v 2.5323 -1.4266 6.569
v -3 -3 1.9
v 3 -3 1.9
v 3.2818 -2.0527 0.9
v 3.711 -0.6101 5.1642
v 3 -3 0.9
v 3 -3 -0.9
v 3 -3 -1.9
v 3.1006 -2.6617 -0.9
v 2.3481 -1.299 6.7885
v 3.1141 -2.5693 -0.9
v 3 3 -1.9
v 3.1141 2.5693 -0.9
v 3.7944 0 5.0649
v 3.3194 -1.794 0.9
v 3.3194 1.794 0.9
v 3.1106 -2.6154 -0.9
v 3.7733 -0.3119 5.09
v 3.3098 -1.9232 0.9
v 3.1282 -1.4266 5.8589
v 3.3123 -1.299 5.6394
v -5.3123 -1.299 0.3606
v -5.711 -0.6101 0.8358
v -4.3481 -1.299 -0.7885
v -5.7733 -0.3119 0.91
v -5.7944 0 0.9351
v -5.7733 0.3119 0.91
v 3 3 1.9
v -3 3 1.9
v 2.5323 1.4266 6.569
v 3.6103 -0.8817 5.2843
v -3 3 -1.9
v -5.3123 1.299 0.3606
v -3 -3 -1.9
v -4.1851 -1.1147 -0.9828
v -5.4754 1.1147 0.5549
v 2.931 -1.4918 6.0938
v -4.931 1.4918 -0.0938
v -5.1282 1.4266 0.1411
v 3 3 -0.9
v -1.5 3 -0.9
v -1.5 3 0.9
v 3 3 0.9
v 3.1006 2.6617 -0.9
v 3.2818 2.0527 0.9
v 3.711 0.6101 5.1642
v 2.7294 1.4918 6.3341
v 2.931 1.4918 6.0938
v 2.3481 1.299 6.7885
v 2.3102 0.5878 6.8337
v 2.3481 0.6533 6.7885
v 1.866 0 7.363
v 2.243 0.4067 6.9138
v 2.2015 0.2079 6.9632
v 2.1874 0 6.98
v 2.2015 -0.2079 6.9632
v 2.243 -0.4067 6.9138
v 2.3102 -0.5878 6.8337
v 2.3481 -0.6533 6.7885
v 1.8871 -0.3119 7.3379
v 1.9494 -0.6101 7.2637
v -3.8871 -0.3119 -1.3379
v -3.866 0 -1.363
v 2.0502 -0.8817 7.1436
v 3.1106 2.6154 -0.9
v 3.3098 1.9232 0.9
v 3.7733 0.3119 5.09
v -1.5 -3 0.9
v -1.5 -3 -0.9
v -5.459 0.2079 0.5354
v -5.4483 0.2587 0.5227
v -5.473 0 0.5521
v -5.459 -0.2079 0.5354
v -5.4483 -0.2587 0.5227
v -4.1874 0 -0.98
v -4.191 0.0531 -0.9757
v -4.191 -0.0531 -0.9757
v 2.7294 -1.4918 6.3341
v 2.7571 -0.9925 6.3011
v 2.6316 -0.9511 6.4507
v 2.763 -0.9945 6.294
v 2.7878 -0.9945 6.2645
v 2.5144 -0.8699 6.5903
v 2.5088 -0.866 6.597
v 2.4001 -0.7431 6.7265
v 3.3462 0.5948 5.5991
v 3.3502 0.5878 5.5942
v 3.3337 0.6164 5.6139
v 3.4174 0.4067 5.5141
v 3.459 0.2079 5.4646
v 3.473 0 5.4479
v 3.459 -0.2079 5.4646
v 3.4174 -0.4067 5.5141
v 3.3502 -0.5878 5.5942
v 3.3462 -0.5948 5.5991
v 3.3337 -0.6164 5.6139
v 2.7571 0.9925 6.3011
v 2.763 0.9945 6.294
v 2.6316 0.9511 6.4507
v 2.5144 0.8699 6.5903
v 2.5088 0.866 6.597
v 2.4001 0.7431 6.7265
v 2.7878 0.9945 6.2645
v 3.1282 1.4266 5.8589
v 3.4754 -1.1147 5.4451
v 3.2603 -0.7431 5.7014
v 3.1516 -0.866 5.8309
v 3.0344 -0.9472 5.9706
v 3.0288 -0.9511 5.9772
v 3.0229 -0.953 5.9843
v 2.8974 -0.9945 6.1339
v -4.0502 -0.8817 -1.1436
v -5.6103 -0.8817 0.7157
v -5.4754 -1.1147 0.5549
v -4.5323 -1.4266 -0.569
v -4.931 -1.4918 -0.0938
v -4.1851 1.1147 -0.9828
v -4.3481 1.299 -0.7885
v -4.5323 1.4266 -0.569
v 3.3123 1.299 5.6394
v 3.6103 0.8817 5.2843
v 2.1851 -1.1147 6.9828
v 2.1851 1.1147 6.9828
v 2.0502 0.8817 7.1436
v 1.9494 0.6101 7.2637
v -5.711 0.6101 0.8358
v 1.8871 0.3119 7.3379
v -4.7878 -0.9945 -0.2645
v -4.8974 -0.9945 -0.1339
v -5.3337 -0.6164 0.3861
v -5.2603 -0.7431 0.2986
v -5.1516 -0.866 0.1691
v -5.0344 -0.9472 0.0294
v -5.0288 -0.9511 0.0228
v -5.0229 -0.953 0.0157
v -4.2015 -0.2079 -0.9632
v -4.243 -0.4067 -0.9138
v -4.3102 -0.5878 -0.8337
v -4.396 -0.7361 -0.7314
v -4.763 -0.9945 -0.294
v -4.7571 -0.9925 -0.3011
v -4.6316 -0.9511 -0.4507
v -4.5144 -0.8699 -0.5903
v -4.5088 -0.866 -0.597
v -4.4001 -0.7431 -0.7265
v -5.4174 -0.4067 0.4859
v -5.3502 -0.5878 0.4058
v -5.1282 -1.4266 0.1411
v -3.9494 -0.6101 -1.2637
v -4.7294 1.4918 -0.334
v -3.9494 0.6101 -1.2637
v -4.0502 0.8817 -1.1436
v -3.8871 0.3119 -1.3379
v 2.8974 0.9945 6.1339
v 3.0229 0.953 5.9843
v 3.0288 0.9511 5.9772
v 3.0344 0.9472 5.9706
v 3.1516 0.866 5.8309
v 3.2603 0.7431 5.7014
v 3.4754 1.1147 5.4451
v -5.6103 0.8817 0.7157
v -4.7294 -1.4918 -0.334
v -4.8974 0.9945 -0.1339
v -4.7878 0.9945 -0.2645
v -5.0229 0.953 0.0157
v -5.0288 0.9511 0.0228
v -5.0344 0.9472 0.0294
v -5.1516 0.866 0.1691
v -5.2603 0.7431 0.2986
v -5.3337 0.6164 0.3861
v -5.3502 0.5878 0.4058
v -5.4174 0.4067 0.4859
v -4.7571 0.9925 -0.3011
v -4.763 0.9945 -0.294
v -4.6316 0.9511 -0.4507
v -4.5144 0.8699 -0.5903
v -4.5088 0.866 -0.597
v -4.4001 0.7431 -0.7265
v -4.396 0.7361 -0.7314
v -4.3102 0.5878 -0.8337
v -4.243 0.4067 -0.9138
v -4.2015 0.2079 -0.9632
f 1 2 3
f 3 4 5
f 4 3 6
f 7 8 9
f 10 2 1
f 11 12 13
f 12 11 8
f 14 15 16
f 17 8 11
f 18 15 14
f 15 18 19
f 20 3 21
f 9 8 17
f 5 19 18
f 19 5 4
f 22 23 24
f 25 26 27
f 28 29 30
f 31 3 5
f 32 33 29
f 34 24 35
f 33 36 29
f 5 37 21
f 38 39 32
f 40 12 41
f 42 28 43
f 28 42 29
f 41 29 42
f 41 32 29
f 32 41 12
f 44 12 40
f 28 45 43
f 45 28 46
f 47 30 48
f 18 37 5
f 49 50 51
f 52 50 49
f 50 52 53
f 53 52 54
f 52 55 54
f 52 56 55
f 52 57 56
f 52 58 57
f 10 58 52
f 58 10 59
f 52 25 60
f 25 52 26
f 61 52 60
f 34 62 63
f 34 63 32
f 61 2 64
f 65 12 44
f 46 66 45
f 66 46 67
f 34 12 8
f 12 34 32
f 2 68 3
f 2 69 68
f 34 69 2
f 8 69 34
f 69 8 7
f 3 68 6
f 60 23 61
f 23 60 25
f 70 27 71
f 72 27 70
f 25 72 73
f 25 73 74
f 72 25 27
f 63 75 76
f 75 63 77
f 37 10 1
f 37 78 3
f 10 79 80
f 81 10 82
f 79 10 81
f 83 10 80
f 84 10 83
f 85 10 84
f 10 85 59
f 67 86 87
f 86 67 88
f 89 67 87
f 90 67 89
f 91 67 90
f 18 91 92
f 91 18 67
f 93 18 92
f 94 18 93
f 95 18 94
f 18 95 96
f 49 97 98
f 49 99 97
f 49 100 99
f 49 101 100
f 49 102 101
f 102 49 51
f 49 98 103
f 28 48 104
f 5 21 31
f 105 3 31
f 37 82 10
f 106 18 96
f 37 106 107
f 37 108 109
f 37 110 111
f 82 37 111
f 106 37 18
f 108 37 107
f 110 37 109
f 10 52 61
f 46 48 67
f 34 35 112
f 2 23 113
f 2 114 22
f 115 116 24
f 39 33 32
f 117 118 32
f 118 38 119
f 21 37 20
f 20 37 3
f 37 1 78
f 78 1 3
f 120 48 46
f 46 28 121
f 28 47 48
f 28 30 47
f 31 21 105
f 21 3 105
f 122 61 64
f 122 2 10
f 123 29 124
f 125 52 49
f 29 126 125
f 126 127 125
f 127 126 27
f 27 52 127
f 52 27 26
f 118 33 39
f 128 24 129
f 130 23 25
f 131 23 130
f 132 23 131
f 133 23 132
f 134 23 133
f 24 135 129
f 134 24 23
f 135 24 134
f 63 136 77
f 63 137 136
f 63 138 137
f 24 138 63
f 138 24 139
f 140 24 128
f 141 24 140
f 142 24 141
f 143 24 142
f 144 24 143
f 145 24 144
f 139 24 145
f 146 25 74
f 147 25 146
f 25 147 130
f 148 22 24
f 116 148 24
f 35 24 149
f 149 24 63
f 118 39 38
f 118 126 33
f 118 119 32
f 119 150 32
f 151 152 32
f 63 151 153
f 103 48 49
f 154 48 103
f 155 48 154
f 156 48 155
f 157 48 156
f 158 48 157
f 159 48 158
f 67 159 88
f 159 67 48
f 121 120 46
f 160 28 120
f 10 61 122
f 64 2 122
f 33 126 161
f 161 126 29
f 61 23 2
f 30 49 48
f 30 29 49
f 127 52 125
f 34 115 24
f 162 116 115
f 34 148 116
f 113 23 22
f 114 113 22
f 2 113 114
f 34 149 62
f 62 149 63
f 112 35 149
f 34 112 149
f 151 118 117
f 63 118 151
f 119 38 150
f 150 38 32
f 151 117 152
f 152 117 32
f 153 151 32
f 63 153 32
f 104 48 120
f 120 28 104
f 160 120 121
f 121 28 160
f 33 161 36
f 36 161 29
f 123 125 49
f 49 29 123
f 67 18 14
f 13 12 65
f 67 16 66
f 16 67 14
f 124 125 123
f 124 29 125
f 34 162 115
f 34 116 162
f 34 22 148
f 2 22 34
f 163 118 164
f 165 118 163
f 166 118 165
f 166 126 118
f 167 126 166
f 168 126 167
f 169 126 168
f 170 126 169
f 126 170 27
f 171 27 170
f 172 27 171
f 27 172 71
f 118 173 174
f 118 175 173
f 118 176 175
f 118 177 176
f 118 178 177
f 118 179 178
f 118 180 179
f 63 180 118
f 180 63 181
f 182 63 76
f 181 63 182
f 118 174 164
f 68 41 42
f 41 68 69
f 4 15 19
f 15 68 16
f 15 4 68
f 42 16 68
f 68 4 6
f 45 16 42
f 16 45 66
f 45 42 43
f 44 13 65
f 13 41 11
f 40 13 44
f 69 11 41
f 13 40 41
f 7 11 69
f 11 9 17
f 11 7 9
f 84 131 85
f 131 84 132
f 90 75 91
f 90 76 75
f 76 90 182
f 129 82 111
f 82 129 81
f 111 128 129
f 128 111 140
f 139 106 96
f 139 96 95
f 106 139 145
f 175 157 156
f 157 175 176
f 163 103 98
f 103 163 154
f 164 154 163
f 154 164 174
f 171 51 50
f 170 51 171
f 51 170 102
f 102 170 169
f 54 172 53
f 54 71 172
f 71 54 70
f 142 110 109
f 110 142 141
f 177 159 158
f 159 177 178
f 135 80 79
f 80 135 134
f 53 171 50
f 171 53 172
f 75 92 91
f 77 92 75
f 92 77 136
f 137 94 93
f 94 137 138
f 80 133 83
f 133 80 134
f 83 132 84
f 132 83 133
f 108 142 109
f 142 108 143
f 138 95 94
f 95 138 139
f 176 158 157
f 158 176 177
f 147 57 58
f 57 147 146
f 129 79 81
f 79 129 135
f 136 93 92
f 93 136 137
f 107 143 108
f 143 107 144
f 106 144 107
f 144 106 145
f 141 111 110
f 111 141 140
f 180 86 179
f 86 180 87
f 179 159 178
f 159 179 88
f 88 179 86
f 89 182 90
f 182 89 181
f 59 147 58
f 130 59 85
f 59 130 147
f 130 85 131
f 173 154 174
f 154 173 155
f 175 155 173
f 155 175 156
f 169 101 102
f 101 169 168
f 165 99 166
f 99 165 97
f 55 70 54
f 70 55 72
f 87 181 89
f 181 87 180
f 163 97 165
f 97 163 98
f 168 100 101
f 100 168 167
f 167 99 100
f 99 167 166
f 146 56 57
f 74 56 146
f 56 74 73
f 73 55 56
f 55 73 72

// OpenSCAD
antenna_tilt = 50;
antenna_rear_shift = -1;
antenna_vert_shift = 3;
antenna_id = 1;
antenna_length = 10;
antenna_thickness = 0.5;
plate_thickness = 1.8;
mount_thickness = 2;
mount_x = 6;
mount_y = 6;


$fs=0.2;

difference() {
    hull() {
        cube([mount_x,mount_y,plate_thickness + mount_thickness],true);
        translate([antenna_rear_shift,0,antenna_vert_shift]) rotate([0,antenna_tilt,0]) cylinder(antenna_length,antenna_id + antenna_thickness,antenna_id + antenna_thickness,true);
    }
    translate([mount_thickness,0,0]) cube([mount_x+1,mount_y+1,plate_thickness],true);
    translate([antenna_rear_shift,0,antenna_vert_shift]) rotate([0,antenna_tilt,0]) cylinder(antenna_length+1,antenna_id,antenna_id,true);

}
